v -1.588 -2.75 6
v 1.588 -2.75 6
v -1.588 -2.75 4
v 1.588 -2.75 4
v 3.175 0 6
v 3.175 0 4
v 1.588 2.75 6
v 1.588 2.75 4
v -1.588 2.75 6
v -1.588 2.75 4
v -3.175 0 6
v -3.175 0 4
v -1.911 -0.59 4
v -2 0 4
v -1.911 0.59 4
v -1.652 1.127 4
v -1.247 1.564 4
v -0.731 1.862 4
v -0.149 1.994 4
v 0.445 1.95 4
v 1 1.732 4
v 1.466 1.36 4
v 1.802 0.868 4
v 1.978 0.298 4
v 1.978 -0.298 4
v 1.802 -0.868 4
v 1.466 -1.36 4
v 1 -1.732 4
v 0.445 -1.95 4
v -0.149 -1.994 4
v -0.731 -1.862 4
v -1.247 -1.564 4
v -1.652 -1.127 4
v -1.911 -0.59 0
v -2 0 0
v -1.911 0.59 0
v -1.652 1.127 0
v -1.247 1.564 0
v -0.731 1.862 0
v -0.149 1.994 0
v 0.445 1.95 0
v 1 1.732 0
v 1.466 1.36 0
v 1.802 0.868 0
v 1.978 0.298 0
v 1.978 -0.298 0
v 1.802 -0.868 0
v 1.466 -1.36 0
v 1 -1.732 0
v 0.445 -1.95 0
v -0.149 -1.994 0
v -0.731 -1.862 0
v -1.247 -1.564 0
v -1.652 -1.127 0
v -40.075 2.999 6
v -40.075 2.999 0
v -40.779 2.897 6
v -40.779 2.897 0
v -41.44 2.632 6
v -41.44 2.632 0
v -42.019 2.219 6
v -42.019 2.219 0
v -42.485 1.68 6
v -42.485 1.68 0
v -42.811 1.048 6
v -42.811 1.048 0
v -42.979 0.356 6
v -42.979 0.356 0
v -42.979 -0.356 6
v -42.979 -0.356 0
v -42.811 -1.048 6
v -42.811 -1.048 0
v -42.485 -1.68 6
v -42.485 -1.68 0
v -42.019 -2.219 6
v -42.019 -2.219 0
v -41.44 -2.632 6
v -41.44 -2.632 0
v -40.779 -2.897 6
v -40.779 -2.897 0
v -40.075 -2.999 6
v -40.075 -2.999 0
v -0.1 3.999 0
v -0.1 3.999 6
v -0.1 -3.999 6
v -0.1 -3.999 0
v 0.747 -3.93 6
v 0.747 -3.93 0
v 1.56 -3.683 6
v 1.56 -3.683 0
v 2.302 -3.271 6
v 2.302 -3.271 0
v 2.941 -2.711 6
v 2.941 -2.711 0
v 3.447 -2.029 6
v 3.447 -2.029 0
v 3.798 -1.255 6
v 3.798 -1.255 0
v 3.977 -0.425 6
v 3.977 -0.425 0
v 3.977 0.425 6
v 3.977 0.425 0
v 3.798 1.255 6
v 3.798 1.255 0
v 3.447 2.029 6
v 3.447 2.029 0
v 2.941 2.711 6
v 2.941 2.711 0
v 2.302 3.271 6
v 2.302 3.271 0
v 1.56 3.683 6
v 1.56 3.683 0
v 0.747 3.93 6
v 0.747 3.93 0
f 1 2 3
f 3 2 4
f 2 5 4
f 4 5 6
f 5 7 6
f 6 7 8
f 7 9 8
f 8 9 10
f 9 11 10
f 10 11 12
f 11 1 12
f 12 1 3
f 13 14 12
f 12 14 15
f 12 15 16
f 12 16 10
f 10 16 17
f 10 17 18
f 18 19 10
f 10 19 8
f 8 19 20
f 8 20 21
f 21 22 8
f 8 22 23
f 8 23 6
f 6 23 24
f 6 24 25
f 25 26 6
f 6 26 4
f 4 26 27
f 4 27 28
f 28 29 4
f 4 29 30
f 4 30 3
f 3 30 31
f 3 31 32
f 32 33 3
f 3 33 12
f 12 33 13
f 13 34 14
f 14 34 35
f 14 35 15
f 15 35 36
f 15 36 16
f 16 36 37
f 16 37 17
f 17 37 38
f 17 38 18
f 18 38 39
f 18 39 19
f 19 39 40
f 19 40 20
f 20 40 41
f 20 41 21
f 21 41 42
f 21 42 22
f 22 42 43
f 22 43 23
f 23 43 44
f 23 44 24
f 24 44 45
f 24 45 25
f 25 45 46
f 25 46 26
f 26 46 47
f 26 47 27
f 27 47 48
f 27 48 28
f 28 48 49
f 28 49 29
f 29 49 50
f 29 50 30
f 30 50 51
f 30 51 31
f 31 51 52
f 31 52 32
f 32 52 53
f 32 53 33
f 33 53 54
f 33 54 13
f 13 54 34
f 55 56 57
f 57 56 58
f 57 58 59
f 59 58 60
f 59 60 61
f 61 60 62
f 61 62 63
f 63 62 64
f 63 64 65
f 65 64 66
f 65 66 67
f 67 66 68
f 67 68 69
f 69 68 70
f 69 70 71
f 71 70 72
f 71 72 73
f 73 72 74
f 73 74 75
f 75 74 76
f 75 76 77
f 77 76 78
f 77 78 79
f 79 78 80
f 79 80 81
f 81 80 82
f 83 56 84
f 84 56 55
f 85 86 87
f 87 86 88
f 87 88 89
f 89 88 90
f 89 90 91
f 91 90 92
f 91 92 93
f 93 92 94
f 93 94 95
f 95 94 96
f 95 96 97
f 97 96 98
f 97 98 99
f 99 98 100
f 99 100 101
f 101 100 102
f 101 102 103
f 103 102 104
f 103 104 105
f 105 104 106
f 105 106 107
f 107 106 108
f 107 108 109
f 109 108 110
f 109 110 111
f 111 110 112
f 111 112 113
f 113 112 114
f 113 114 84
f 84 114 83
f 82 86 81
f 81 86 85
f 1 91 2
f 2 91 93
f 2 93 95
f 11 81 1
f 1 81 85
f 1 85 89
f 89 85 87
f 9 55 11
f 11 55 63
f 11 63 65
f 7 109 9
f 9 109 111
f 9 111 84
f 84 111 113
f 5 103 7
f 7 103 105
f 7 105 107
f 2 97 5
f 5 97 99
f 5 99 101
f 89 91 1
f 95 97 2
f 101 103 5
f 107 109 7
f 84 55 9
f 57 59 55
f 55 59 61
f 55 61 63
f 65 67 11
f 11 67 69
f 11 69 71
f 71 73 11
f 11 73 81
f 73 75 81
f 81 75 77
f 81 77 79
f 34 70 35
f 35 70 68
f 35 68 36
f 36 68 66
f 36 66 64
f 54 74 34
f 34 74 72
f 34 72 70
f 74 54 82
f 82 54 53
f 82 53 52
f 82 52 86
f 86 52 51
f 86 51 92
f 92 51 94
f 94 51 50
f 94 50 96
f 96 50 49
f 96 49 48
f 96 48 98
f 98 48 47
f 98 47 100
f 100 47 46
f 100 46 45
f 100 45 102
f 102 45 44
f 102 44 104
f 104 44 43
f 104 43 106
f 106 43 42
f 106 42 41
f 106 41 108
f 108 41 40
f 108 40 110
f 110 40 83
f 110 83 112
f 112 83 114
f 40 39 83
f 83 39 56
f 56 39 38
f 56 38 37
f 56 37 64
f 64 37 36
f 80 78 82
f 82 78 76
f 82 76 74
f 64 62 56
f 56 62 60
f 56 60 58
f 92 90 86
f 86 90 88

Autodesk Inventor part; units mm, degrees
ref_plane "YZ Plane" through (0, 0, 0) normal (1, 0, 0) x (0, 1, 0)
ref_plane "XZ Plane" through (0, 0, 0) normal (0, 1, 0) x (-1, 0, 0)
ref_plane "XY Plane" through (0, 0, 0) normal (0, 0, 1) x (1, 0, 0)
sketch "Boceto1" plane through (0, 0, 0) normal (0, 0, 1) x (1, 0, 0)
  arc A0 (-0.1, -3.9987) -> (-0.1, 3.9987) centre (0, 0) ccw
  line L0 (0, 0) -> (-40, 0)
  arc A1 (-40.075, 2.9991) -> (-40.075, -2.9991) centre (-40, 0) ccw
  line L1 (-40.075, 2.9991) -> (-0.1, 3.9987)
  line L2 (-40.075, -2.9991) -> (-0.1, -3.9987)
  dimension "d0" = 8
  dimension "d1" = 40
  dimension "d2" = 6
extrude "Extrusión1" add sketch "Boceto1" along normal blind 6
sketch "Boceto2" plane through (0, 0, 6) normal (0, 0, 1) x (1, 0, 0)
  arc A0 (-0.1, -3.9987) -> (-0.1, 3.9987) centre (0, 0) ccw projected
hole "Agujero1" at (0, 0, 6) direction (0, 0, -1) diameter 4 depth 11.75 tip angle 118
sketch "Boceto3" plane through (0, 0, 6) normal (0, 0, 1) x (1, 0, 0)
  line L0 (-1.5877, 2.75) -> (1.5877, 2.75)
  line L1 (1.5877, 2.75) -> (3.1754, 0)
  line L2 (3.1754, 0) -> (1.5877, -2.75)
  line L3 (1.5877, -2.75) -> (-1.5877, -2.75)
  line L4 (-1.5877, -2.75) -> (-3.1754, 0)
  line L5 (-3.1754, 0) -> (-1.5877, 2.75)
  point P0 (0, 0)
  point P1 (0, 0)
  dimension "d12" = 5.5
extrude "Extrusión2" cut sketch "Boceto3" against normal blind 2
properties part number "Brazo"
